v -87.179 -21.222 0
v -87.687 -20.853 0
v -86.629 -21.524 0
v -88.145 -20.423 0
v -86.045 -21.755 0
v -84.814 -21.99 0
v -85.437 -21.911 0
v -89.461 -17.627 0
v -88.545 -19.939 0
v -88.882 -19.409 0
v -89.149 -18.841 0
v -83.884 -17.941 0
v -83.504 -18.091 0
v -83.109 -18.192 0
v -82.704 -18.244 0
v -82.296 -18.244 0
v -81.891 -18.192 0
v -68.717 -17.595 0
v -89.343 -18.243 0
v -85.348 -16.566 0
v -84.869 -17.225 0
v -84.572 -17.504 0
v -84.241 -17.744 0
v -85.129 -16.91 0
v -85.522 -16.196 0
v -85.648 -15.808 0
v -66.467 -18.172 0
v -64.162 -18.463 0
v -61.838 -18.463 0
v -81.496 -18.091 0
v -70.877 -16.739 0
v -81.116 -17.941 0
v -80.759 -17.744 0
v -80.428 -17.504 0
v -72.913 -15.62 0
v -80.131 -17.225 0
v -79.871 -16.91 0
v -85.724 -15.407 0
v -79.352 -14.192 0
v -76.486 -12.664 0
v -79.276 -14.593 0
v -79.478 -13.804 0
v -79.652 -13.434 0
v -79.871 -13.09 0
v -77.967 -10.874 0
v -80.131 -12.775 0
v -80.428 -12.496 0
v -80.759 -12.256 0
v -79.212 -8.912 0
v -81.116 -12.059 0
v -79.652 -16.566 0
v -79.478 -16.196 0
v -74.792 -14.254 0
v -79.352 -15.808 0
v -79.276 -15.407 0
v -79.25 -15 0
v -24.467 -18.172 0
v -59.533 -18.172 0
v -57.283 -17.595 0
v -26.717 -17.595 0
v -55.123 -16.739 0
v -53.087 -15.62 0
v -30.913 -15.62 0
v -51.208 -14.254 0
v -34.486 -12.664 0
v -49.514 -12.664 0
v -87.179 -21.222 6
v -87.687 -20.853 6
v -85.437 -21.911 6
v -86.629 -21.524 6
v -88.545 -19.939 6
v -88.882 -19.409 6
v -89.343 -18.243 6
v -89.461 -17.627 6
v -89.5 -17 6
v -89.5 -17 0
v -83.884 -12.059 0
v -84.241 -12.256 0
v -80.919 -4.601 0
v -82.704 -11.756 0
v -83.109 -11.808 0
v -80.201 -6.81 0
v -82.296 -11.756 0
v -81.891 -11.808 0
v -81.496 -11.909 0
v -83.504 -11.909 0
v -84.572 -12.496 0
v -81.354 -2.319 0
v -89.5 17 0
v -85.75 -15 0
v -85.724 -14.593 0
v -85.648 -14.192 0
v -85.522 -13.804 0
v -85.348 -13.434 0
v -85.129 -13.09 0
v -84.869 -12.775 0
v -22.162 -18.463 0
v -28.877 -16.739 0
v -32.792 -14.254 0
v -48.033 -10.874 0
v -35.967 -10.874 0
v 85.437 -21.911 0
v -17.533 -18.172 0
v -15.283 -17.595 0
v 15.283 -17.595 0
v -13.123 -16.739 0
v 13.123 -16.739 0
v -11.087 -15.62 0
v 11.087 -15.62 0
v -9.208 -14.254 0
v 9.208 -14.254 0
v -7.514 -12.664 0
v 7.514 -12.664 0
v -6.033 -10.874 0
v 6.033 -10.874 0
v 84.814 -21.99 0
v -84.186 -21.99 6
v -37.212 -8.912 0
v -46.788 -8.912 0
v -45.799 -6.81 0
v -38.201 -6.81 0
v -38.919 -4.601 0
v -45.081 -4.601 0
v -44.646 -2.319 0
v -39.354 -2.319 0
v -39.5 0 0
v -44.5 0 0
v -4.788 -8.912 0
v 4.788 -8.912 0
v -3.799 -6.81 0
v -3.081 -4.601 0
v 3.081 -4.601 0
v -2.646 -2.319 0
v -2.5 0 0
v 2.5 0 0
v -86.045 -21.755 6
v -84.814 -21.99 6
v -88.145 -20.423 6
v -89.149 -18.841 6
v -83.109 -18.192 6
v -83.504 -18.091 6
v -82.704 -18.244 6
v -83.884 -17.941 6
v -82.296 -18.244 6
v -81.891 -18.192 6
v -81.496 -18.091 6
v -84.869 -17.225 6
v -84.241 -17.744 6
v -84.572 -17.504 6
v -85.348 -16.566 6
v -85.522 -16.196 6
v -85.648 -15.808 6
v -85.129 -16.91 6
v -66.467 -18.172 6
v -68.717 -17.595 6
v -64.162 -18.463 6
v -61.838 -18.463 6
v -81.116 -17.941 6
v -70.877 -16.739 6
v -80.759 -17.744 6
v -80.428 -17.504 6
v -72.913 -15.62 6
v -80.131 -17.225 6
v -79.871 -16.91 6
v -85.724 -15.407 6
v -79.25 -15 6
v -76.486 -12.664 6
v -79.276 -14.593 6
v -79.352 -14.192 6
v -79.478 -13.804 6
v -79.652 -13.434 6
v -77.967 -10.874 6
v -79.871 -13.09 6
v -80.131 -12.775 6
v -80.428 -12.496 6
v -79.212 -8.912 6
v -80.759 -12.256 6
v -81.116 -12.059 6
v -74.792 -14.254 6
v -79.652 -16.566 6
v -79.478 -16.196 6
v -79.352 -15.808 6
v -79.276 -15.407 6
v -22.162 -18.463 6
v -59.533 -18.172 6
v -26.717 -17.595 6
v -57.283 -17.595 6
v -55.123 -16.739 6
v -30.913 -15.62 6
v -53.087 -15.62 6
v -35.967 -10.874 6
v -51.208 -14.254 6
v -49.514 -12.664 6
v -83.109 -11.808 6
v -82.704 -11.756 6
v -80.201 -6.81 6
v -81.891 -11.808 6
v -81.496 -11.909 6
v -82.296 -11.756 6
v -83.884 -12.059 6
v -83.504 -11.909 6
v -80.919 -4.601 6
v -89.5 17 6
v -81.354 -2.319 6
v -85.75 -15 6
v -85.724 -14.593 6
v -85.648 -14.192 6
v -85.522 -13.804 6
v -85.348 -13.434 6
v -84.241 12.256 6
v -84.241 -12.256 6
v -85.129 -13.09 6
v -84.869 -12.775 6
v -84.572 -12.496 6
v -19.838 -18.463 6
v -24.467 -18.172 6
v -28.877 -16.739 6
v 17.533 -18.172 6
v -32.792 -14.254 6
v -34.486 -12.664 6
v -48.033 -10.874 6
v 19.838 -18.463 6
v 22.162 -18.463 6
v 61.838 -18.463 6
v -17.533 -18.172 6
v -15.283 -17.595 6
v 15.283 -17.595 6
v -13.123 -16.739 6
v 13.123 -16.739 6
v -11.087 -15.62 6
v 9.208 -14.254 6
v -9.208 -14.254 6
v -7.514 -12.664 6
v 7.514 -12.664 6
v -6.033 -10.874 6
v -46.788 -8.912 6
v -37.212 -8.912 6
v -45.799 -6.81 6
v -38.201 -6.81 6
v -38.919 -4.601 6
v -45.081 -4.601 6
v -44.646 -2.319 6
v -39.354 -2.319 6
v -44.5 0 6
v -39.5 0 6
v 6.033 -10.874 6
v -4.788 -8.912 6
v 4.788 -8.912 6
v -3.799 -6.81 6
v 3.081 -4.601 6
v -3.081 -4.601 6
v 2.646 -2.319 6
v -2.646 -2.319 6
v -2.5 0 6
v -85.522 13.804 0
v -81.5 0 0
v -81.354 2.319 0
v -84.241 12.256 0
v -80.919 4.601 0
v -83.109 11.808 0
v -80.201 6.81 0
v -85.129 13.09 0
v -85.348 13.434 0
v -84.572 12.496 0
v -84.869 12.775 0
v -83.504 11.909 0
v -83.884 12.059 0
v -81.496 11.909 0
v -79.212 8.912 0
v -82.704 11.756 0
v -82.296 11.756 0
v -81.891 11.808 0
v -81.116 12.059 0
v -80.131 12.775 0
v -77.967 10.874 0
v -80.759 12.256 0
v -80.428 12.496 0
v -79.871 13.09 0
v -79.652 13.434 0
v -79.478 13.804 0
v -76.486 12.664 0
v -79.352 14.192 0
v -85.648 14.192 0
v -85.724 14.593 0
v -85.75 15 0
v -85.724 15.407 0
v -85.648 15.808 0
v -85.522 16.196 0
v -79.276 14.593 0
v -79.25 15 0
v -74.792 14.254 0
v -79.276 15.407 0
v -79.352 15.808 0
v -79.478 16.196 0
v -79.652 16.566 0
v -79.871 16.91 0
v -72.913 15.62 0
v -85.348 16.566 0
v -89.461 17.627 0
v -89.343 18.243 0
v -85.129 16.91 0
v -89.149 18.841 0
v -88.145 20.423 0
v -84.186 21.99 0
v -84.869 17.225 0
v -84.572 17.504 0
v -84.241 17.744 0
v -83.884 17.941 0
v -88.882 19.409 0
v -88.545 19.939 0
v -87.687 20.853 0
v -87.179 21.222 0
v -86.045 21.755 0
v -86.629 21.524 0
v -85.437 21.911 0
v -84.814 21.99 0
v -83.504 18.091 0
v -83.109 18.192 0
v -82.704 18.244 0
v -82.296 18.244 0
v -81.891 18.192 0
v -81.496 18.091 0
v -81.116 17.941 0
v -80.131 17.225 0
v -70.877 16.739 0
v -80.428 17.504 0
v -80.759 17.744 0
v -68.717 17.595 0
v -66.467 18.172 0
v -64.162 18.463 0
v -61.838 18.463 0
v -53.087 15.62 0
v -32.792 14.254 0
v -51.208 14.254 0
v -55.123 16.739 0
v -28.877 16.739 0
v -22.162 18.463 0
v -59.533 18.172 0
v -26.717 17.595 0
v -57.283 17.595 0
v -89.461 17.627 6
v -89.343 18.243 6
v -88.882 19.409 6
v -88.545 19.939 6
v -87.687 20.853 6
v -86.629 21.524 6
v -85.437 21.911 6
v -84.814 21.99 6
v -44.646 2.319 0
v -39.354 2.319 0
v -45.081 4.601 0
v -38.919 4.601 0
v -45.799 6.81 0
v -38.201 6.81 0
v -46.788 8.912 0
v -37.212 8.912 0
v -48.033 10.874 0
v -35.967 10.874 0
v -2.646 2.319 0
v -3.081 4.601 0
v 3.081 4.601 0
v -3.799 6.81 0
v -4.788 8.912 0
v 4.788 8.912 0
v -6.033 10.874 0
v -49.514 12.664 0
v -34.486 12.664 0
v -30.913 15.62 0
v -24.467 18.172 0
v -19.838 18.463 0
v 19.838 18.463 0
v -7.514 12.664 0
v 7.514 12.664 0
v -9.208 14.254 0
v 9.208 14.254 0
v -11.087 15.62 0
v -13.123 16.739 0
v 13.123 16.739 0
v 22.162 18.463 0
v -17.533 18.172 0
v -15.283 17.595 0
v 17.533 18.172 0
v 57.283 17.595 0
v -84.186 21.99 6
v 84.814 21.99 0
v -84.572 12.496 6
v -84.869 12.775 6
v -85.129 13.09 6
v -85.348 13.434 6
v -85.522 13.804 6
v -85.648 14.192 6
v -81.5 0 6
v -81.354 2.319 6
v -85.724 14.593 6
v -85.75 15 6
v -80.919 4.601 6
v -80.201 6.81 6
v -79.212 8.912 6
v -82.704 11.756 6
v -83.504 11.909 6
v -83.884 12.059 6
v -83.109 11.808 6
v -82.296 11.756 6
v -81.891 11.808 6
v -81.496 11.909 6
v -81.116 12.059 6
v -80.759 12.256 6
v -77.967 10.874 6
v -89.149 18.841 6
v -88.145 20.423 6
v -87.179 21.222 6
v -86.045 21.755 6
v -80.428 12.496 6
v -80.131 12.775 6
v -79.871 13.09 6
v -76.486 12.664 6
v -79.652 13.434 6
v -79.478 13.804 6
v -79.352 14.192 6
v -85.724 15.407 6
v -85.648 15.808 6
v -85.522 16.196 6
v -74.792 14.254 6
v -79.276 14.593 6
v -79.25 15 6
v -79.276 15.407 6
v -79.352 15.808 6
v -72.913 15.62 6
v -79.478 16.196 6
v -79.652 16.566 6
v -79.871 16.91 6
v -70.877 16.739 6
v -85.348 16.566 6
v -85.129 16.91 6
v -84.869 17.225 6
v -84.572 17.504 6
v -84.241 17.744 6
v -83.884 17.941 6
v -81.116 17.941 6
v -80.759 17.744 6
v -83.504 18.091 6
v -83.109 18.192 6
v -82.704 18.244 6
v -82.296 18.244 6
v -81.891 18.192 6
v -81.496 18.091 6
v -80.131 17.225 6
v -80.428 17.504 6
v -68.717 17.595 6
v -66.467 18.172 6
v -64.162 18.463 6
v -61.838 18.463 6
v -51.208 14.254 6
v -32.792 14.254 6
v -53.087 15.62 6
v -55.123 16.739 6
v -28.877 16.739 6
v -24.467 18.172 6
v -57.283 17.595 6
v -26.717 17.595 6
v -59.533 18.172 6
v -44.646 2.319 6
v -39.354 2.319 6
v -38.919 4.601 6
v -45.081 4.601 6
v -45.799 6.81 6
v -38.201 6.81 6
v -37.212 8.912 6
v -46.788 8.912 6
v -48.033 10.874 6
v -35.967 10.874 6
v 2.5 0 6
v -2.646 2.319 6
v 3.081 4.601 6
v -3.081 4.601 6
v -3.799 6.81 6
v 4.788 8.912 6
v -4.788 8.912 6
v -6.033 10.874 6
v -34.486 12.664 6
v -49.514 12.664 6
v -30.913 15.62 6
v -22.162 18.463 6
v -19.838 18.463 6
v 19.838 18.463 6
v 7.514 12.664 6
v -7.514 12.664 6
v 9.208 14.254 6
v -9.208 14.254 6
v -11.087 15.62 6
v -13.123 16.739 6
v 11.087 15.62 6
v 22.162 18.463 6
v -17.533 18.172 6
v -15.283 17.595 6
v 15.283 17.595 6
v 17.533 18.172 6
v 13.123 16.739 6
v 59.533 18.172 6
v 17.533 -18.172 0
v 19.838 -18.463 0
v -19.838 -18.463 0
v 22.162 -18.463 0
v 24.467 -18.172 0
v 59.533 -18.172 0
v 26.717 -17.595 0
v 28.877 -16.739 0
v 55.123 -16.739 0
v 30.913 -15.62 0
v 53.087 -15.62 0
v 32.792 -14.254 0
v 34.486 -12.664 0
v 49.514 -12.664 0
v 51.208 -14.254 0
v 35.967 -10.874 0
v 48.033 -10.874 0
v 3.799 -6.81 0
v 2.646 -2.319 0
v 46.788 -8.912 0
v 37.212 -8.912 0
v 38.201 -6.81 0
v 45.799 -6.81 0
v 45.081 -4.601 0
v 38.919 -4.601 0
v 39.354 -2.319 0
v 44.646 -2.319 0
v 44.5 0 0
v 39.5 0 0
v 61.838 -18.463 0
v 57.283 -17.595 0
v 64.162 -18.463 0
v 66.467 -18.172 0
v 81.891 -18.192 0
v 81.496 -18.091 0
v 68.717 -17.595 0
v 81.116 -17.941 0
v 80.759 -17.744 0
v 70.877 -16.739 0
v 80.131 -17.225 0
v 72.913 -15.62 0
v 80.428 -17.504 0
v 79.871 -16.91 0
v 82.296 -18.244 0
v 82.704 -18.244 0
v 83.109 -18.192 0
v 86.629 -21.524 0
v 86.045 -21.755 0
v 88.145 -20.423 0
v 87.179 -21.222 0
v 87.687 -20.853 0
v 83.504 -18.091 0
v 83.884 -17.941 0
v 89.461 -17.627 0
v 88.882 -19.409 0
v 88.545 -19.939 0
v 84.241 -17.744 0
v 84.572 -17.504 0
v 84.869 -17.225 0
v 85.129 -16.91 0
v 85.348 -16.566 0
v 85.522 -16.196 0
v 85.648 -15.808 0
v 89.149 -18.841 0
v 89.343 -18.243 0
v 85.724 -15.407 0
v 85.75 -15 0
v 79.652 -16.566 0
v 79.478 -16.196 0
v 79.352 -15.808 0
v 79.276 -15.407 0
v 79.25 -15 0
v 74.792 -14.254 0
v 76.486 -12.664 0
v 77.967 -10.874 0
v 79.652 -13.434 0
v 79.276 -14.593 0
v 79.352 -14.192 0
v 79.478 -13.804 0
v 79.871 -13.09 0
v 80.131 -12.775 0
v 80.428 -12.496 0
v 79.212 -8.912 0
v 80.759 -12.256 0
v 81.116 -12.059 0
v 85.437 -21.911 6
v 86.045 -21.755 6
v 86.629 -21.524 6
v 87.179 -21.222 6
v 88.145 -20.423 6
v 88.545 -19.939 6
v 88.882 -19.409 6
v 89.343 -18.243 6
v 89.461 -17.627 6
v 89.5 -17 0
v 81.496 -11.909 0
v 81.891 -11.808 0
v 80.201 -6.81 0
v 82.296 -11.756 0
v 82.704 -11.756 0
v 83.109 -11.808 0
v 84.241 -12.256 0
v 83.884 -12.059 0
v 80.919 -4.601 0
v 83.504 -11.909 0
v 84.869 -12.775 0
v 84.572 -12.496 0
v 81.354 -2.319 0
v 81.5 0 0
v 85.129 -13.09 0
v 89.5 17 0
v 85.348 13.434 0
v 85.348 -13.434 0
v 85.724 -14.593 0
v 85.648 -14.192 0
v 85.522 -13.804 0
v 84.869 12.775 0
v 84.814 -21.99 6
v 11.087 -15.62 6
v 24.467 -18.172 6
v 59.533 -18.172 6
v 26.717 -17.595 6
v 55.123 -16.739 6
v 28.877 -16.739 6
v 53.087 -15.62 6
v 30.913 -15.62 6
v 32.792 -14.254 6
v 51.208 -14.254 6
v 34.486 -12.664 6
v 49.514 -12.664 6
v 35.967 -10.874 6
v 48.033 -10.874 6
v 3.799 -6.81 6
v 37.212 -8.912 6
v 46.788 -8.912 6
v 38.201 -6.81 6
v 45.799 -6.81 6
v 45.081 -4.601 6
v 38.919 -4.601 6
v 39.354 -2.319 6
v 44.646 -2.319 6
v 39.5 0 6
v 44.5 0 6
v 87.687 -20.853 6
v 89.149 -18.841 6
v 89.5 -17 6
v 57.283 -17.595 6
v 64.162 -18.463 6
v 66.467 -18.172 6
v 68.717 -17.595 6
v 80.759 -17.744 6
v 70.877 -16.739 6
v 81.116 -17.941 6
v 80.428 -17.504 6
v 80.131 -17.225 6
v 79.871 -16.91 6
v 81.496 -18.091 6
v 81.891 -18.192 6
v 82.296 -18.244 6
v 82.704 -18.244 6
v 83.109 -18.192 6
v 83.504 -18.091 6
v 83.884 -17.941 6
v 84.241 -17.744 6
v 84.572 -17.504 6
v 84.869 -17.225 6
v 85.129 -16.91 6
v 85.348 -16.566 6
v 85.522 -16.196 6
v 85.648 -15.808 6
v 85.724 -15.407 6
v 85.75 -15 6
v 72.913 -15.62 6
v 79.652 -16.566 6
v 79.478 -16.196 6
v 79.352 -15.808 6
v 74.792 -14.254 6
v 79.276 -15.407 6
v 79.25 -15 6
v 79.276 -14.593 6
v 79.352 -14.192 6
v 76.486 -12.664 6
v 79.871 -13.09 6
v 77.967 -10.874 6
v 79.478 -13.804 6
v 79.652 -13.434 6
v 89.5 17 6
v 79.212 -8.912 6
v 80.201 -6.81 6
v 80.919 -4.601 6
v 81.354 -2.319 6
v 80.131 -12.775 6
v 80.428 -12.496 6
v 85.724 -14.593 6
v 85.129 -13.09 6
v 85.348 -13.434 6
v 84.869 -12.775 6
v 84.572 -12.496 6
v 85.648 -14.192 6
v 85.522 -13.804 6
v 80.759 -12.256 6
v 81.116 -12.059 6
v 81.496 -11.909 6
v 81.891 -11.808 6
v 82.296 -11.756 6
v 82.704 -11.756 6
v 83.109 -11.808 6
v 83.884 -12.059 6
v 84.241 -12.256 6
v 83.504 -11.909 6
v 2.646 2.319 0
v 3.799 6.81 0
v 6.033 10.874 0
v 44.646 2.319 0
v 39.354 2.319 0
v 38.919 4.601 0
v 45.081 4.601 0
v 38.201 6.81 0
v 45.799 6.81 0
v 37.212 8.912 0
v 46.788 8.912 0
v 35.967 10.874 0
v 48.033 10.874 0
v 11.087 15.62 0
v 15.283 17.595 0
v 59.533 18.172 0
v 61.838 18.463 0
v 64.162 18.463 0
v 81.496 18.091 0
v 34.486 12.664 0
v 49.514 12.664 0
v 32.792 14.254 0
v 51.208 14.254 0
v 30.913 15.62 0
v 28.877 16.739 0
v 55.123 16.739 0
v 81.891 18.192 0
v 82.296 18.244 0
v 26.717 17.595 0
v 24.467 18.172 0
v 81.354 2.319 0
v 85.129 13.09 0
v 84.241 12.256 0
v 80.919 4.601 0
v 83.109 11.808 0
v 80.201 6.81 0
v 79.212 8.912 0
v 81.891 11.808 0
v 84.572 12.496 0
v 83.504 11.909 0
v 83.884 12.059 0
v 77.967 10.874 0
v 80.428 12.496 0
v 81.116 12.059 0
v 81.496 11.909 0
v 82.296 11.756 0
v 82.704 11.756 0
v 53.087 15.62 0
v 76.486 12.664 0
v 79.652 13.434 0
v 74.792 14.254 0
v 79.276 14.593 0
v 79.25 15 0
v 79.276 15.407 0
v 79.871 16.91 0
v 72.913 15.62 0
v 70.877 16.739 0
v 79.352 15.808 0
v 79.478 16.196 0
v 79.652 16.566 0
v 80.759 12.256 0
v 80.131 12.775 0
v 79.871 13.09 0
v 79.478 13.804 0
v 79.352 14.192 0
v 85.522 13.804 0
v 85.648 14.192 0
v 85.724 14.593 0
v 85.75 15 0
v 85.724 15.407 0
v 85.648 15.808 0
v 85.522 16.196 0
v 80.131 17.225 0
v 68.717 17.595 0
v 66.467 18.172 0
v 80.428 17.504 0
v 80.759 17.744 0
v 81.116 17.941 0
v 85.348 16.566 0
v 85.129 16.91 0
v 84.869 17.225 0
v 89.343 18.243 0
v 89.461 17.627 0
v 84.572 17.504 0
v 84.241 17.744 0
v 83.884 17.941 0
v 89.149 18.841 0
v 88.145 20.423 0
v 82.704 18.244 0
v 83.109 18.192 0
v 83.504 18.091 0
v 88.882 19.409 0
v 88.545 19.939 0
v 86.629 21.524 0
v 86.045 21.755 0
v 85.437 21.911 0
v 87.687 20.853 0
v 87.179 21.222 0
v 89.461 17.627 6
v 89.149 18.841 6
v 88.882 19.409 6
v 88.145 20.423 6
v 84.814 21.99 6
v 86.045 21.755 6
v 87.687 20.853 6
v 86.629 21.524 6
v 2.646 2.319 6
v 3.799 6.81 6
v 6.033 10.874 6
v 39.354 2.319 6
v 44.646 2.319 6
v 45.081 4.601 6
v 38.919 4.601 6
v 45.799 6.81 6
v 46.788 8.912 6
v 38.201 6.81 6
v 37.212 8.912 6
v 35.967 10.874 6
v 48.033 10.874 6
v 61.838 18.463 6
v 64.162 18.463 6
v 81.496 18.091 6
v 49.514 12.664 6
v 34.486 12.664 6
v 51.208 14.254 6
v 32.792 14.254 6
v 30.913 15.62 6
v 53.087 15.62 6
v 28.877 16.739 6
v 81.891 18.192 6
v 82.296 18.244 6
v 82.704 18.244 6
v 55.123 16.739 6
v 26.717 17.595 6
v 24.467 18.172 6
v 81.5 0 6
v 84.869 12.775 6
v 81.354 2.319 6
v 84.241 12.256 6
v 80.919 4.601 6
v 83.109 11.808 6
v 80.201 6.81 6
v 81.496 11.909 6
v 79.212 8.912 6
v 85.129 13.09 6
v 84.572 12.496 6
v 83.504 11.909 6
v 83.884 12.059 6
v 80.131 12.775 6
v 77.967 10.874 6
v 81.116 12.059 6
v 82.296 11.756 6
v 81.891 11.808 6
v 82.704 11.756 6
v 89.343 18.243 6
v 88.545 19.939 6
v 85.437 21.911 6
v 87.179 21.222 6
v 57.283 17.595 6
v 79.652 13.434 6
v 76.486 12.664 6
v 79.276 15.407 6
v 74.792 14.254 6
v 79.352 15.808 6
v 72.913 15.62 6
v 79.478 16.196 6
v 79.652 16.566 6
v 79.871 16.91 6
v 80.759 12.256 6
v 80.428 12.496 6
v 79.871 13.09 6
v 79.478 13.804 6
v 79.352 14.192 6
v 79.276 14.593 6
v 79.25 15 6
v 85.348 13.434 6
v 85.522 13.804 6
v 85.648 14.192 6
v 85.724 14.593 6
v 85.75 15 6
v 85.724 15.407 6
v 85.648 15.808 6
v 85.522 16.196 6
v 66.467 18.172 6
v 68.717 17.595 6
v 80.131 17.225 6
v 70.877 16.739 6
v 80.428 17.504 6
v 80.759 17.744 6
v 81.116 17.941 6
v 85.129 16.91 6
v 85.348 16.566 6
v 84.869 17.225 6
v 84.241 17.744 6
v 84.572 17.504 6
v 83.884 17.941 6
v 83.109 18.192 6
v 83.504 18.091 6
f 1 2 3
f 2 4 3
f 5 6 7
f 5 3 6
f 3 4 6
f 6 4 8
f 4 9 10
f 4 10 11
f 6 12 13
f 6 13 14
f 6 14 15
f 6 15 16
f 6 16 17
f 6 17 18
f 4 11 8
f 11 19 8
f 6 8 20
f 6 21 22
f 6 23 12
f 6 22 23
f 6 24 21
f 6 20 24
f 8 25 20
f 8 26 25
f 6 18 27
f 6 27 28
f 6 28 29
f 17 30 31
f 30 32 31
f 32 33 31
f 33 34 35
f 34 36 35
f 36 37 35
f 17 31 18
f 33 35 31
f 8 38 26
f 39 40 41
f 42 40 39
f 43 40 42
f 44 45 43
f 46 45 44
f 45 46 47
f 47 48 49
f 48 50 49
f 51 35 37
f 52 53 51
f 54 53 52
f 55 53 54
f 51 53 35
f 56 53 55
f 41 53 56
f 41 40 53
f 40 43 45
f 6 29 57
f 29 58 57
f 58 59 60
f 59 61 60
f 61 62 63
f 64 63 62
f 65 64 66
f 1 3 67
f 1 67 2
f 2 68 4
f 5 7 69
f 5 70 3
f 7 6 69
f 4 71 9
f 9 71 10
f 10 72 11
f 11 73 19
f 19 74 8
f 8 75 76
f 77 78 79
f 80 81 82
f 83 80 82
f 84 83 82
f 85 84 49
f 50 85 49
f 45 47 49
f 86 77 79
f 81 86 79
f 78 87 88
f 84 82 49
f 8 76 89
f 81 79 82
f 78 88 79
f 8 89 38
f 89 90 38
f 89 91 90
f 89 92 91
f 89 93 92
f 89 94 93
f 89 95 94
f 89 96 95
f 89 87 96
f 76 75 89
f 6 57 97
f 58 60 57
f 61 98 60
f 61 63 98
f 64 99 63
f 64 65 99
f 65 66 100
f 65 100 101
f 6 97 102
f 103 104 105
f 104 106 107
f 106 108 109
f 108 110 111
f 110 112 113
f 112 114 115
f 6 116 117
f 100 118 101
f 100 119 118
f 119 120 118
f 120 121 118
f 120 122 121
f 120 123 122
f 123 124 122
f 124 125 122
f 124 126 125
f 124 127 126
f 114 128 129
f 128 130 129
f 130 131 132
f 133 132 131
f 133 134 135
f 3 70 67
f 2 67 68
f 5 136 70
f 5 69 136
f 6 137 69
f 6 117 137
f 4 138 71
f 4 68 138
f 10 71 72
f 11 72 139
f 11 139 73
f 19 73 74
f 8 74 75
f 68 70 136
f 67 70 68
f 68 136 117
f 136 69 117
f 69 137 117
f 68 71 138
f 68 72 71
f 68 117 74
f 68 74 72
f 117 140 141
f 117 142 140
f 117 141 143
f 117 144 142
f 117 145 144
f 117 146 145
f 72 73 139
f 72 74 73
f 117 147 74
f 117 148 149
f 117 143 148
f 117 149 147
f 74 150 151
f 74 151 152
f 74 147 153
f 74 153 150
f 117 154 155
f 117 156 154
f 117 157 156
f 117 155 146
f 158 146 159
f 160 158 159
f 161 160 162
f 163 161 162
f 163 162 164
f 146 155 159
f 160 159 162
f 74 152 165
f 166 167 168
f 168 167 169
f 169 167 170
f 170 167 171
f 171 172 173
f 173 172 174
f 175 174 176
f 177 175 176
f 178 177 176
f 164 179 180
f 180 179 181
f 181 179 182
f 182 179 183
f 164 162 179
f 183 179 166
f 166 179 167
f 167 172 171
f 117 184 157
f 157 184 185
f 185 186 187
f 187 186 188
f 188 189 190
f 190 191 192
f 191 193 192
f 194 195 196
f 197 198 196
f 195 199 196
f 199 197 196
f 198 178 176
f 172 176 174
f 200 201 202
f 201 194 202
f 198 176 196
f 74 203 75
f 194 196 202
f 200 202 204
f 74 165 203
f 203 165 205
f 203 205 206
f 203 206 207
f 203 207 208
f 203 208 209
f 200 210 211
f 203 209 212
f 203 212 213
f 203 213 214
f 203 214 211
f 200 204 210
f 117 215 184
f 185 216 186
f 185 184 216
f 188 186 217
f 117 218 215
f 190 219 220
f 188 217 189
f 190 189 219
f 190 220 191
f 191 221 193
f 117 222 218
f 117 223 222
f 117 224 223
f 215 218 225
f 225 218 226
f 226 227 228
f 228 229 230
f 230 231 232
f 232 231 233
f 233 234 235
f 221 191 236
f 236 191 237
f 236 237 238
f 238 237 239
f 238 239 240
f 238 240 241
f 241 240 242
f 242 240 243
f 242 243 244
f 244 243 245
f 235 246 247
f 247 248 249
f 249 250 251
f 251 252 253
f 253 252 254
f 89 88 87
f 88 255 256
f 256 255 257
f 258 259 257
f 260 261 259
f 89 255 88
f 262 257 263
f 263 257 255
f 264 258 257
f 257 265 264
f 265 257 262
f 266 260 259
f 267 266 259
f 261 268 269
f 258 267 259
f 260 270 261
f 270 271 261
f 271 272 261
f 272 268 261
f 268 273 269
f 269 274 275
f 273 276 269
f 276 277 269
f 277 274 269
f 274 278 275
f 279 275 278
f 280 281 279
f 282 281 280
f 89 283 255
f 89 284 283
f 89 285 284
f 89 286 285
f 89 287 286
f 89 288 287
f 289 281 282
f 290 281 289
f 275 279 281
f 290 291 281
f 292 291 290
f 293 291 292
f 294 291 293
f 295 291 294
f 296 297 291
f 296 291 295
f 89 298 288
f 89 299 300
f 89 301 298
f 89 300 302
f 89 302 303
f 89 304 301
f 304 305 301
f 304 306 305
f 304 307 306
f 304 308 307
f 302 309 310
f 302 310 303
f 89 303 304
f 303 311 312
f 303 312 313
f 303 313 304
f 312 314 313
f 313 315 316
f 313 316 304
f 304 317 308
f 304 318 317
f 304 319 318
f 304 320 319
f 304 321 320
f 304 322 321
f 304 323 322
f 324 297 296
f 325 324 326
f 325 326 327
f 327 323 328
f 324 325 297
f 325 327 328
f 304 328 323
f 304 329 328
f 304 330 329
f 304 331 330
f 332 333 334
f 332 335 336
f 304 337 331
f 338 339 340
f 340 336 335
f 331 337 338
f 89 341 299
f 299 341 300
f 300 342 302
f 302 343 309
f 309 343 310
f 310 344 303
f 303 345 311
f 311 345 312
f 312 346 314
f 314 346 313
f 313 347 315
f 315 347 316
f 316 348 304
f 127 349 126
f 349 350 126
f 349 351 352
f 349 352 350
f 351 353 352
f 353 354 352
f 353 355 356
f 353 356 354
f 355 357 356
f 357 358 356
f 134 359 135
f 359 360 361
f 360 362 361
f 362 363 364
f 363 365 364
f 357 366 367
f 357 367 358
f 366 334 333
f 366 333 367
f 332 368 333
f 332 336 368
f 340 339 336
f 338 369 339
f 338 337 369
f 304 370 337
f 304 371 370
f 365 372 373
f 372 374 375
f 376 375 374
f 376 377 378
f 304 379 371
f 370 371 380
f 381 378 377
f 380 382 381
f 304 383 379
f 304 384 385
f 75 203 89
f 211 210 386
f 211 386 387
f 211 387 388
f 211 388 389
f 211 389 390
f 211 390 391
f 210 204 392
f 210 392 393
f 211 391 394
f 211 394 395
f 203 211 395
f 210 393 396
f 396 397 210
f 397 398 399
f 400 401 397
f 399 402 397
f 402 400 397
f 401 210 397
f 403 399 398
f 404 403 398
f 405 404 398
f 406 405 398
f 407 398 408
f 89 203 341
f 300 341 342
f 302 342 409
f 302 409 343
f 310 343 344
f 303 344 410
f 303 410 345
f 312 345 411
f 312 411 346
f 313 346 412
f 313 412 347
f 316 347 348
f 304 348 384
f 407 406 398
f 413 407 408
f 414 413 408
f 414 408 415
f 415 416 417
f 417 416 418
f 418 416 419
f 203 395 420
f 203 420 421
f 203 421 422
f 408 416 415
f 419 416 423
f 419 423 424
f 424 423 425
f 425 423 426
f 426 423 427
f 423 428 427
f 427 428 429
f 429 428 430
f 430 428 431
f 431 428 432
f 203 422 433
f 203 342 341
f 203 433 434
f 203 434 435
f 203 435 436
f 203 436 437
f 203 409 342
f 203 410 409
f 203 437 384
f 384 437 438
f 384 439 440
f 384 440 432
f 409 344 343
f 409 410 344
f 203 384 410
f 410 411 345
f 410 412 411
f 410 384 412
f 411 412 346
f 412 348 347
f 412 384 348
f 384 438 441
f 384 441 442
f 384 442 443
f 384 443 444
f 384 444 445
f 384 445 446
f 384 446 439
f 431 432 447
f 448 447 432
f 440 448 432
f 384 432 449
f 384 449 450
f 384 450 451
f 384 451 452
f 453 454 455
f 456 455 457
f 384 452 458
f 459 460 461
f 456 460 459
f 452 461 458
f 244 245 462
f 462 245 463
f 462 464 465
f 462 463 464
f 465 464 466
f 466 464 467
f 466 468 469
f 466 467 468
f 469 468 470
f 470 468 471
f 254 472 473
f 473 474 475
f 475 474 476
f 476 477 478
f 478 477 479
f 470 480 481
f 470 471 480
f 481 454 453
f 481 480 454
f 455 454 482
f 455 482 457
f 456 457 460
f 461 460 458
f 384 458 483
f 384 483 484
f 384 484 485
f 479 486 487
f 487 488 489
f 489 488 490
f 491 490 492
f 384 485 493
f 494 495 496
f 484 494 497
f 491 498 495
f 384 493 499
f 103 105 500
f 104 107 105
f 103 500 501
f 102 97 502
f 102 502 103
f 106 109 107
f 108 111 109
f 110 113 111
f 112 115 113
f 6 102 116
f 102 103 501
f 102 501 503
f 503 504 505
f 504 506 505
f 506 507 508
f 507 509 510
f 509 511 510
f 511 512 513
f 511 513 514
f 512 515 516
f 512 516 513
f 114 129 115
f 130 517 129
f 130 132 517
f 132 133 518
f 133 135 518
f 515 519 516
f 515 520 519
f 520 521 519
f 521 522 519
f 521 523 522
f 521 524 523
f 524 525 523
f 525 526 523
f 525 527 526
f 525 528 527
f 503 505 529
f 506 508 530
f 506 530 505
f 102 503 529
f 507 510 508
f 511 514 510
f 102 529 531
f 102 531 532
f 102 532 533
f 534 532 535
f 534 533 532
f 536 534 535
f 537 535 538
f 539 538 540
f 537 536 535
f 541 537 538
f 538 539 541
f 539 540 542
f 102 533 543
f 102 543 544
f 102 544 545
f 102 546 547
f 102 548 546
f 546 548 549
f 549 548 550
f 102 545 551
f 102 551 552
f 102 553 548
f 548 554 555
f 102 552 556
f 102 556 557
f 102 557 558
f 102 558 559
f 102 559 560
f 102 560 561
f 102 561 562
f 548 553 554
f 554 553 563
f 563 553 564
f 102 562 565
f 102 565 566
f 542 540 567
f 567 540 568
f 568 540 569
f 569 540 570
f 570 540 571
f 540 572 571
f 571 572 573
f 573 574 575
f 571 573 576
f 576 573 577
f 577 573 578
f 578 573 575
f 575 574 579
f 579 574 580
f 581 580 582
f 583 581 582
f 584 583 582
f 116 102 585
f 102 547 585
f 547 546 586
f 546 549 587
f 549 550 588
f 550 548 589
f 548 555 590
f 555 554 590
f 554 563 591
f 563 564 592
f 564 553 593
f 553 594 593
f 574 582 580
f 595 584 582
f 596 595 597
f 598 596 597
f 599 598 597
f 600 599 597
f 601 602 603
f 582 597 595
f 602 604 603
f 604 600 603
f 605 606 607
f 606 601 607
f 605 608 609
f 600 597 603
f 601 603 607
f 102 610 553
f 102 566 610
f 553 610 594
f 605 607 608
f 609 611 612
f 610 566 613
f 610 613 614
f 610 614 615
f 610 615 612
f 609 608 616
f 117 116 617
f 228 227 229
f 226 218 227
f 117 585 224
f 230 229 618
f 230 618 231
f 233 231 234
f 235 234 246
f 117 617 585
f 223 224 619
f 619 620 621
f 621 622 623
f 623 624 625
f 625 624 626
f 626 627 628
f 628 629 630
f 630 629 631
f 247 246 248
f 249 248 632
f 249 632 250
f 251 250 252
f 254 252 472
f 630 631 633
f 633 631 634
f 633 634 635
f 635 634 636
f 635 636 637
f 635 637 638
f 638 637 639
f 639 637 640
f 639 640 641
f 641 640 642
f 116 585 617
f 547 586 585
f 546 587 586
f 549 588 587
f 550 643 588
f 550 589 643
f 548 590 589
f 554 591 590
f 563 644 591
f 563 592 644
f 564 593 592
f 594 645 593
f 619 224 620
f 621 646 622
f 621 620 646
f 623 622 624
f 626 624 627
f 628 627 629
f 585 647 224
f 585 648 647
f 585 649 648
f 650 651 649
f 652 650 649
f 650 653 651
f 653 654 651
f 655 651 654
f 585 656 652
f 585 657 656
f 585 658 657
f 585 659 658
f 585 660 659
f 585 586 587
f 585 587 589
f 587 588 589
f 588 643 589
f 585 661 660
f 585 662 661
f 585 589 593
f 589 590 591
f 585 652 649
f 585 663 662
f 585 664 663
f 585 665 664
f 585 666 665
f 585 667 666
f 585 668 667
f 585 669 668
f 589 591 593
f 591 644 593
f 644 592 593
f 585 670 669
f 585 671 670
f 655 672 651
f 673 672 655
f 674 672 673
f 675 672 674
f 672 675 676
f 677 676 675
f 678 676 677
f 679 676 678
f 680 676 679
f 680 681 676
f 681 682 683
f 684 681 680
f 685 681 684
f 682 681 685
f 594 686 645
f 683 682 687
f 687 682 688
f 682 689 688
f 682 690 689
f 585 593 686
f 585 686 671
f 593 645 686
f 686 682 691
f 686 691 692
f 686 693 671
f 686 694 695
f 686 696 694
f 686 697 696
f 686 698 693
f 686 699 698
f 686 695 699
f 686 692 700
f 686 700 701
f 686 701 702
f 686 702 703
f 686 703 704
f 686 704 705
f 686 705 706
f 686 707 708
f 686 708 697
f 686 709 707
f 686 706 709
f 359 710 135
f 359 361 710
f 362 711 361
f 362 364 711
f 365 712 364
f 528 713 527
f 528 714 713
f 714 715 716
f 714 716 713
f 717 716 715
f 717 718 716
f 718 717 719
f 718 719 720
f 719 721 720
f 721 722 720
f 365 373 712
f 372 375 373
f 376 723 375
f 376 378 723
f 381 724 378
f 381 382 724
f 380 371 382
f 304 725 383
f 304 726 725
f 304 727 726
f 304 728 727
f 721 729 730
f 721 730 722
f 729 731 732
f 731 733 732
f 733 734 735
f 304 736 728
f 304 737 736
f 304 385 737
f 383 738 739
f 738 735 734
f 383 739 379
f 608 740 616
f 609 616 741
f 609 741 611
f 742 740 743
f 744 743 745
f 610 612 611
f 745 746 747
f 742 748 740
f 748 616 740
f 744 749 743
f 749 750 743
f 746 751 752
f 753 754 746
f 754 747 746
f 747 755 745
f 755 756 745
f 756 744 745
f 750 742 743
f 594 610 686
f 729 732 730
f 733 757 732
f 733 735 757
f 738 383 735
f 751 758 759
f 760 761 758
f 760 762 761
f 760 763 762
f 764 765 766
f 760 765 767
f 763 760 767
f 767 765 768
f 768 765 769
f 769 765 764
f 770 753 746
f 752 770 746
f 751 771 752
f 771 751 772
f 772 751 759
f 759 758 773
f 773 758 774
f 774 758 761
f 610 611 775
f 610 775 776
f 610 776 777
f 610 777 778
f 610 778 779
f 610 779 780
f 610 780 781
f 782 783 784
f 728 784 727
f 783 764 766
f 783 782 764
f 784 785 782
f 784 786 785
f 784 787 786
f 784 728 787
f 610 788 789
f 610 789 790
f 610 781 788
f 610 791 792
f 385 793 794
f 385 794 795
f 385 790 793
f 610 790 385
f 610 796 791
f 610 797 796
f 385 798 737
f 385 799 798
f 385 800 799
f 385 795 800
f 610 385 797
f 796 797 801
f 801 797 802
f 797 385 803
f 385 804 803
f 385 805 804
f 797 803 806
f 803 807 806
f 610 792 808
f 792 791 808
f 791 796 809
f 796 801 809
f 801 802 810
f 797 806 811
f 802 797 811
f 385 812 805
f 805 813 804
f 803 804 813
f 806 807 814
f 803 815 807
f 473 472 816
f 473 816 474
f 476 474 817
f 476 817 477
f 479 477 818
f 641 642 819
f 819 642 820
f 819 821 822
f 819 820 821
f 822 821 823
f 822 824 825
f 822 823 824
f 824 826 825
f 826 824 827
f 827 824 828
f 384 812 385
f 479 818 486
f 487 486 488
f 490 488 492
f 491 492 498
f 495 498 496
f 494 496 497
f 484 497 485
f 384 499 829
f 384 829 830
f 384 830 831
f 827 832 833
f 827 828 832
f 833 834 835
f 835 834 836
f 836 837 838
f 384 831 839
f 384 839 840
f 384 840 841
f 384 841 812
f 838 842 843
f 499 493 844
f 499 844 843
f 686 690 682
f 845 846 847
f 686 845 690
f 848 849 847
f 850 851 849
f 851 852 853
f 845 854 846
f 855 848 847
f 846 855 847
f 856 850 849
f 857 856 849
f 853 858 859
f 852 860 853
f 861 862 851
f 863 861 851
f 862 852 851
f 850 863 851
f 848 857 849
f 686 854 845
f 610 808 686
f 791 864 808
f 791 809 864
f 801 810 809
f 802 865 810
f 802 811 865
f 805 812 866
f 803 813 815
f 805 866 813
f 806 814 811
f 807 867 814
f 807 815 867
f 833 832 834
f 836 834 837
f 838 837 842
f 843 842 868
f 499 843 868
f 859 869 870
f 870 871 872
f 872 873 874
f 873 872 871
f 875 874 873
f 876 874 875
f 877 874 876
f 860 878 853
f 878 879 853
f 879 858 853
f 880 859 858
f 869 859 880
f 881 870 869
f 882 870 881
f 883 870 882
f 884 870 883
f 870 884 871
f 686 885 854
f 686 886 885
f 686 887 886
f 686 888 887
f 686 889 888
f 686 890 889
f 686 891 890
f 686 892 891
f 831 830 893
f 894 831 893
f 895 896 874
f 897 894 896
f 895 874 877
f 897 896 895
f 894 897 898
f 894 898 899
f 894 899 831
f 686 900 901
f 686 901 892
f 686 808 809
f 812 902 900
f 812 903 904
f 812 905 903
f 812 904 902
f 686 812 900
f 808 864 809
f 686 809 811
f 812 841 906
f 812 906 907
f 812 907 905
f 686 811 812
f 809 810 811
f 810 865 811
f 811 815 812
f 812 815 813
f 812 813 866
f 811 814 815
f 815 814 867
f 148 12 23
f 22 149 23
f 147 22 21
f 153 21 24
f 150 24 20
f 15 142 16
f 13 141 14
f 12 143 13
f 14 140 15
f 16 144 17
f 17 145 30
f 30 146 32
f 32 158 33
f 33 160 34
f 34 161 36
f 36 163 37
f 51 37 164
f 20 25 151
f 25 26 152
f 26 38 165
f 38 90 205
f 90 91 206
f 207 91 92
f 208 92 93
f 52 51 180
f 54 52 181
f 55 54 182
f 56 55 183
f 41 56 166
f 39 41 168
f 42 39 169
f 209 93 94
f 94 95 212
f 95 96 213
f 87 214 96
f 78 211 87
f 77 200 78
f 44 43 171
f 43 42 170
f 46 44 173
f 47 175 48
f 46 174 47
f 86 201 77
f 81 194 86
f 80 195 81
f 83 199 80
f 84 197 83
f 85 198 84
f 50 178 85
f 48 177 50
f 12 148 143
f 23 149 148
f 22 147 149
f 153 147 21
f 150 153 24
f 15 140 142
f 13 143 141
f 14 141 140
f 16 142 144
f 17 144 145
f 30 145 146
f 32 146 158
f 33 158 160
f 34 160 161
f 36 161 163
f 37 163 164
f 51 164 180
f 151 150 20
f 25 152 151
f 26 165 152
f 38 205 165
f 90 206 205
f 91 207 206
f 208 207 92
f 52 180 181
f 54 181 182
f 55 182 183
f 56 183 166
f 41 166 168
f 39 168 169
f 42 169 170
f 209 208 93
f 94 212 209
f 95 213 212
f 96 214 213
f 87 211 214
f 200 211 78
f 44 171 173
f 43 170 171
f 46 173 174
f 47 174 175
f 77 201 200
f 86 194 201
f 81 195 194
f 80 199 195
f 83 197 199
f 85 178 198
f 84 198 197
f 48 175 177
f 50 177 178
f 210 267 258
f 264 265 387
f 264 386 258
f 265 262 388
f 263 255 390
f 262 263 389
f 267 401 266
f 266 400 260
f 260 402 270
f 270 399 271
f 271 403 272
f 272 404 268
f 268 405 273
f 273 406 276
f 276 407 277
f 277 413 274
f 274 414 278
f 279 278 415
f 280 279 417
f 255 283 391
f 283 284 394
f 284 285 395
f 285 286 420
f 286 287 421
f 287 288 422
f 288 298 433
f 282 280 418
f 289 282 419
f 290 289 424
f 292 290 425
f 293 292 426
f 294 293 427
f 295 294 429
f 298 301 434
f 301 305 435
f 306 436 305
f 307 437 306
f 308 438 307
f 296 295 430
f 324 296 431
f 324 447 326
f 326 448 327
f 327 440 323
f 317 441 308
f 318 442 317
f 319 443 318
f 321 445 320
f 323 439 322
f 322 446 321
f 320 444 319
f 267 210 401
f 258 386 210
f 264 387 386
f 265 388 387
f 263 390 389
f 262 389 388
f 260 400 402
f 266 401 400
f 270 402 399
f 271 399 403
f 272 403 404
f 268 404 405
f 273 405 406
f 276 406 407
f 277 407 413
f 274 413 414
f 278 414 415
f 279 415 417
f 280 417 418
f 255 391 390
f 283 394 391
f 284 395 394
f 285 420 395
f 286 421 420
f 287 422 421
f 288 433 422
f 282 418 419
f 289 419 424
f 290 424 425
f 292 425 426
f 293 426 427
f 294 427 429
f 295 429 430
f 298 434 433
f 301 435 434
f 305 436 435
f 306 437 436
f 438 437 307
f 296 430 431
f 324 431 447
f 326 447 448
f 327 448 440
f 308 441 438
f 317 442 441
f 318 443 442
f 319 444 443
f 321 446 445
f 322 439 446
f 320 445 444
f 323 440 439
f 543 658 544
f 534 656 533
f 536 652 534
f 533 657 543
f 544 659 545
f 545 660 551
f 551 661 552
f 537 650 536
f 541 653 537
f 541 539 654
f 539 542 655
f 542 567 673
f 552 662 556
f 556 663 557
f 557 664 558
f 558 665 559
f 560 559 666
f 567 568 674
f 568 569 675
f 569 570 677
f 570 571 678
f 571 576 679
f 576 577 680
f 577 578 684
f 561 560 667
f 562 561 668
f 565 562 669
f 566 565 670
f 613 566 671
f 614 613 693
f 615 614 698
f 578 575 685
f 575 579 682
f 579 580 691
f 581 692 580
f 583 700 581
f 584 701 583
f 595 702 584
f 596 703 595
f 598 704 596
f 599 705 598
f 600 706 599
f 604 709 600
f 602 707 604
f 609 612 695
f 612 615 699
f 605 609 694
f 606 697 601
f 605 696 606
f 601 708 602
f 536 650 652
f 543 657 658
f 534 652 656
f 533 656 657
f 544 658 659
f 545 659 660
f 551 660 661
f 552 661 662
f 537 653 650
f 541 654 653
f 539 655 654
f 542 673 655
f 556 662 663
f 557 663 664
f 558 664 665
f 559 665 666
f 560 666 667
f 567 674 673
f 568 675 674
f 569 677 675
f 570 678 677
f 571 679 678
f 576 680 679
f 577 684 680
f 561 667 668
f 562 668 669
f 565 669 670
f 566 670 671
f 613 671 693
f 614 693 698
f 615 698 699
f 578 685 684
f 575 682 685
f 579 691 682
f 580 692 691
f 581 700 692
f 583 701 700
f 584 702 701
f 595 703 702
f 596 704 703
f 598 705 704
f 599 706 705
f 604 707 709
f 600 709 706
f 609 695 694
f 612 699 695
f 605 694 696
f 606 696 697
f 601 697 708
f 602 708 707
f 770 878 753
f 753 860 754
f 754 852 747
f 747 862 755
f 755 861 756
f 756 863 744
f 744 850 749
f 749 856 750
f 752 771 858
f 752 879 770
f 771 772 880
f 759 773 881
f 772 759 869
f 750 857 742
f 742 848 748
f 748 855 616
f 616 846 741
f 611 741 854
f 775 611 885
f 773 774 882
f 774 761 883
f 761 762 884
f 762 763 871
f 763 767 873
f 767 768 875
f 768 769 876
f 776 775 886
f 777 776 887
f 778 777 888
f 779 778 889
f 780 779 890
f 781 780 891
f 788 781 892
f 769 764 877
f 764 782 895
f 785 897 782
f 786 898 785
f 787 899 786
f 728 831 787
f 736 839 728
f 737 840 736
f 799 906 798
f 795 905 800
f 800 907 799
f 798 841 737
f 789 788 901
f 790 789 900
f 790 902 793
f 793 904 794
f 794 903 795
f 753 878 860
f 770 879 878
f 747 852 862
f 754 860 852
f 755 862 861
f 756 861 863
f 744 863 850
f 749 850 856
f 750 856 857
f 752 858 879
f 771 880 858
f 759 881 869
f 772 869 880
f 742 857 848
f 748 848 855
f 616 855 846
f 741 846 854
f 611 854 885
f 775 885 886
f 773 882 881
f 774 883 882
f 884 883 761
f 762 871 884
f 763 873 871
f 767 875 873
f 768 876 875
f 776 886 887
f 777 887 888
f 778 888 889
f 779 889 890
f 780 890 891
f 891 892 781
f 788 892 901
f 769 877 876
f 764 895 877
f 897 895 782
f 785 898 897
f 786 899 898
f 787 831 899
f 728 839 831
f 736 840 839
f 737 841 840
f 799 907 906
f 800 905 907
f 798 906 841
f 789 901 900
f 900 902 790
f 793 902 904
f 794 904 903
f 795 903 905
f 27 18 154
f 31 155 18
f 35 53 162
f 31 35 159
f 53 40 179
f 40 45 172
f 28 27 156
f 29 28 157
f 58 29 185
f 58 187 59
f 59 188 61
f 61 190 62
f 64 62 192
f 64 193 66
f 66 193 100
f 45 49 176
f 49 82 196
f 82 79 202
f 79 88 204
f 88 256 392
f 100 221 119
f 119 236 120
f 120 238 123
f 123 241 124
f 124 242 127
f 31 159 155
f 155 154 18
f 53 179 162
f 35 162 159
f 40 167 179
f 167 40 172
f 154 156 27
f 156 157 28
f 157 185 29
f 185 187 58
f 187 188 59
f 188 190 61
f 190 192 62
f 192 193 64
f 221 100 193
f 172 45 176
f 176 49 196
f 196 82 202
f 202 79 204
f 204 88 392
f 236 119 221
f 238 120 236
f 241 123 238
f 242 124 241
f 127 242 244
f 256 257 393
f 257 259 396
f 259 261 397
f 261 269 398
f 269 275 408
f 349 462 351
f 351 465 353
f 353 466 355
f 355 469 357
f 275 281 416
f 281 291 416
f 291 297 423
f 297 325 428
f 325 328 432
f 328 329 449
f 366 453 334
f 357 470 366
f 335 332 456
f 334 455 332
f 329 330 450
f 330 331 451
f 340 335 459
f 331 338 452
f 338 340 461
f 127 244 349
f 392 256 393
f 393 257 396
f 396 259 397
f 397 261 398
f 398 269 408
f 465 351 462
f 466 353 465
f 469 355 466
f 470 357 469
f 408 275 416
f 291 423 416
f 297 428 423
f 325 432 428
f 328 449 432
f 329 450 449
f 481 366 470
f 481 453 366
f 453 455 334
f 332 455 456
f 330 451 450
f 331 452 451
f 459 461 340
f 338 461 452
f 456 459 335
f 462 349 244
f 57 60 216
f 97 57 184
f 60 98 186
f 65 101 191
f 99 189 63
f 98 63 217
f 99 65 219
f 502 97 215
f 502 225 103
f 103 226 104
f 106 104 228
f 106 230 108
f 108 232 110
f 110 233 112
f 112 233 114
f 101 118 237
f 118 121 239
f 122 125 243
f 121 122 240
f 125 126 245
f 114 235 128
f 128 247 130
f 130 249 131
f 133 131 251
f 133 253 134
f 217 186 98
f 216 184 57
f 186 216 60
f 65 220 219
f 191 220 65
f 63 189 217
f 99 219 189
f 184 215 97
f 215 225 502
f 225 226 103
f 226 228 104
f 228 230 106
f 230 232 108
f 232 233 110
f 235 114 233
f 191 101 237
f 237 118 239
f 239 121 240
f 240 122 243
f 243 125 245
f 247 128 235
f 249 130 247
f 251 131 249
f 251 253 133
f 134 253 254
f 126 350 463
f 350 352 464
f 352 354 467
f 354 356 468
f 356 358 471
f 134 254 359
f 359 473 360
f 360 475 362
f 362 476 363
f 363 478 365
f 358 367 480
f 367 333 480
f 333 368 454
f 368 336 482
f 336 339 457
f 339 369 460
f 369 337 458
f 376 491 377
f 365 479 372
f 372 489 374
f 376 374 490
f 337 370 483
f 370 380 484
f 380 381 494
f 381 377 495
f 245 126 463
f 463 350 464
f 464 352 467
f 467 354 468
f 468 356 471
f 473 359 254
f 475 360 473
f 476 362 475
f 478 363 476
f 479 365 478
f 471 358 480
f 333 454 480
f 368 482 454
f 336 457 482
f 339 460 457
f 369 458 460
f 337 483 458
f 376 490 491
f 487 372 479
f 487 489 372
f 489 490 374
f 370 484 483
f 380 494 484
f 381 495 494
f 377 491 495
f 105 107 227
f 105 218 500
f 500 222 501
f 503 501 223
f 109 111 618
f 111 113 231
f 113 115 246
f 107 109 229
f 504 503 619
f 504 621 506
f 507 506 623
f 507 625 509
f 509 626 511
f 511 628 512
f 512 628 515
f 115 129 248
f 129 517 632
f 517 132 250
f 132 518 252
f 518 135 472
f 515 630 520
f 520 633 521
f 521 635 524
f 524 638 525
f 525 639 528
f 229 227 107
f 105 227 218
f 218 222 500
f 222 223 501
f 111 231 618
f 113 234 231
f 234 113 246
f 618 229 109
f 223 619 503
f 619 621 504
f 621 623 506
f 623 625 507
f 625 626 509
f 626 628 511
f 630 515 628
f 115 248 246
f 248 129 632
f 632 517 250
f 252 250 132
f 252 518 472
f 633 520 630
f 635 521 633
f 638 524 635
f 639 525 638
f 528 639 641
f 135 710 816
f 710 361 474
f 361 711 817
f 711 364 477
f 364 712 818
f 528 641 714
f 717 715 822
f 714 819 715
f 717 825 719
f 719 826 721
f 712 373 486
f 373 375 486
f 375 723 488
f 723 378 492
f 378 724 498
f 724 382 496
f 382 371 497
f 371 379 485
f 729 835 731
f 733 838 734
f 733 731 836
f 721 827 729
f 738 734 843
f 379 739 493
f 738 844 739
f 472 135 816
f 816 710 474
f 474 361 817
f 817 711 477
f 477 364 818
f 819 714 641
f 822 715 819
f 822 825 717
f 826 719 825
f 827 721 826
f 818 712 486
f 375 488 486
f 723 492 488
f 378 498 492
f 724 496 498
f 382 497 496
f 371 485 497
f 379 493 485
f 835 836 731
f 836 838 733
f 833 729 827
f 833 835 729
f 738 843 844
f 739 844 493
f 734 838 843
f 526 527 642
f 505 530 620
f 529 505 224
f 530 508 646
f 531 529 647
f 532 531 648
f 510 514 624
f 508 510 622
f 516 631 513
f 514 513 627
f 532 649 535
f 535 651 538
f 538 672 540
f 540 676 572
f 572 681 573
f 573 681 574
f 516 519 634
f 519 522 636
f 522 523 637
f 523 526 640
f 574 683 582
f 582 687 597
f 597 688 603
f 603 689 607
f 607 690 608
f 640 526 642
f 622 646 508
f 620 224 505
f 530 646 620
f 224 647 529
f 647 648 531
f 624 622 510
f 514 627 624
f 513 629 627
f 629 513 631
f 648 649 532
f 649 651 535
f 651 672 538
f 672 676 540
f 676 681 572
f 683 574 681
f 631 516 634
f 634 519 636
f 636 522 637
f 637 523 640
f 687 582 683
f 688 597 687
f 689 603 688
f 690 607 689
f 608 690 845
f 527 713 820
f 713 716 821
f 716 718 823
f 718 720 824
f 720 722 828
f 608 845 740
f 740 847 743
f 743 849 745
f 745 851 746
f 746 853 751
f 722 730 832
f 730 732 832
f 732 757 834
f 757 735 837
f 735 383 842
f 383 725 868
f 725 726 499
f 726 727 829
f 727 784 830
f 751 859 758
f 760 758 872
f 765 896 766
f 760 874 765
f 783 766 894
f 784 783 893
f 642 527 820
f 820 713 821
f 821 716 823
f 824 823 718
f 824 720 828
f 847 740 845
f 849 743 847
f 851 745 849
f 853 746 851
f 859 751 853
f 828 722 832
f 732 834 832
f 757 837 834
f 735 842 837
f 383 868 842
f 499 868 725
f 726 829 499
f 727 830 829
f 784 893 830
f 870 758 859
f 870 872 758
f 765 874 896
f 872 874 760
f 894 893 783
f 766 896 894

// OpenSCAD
$fn = 50;

difference() {
	union() {
		hull() {
			translate(v = [-84.5, 17.0, 0]) {
				cylinder(h = 6, r = 5);
			}
			translate(v = [84.5, 17.0, 0]) {
				cylinder(h = 6, r = 5);
			}
			translate(v = [-84.5, -17.0, 0]) {
				cylinder(h = 6, r = 5);
			}
			translate(v = [84.5, -17.0, 0]) {
				cylinder(h = 6, r = 5);
			}
		}
	}
	union() {
		translate(v = [-82.5, -15.0, -100.0]) {
			cylinder(h = 200, r = 3.25);
		}
		translate(v = [-82.5, 15.0, -100.0]) {
			cylinder(h = 200, r = 3.25);
		}
		translate(v = [82.5, -15.0, -100.0]) {
			cylinder(h = 200, r = 3.25);
		}
		translate(v = [82.5, 15.0, -100.0]) {
			cylinder(h = 200, r = 3.25);
		}
		translate(v = [-82.5, -15.0, -100.0]) {
			cylinder(h = 200, r = 1.8);
		}
		translate(v = [-82.5, 15.0, -100.0]) {
			cylinder(h = 200, r = 1.8);
		}
		translate(v = [82.5, -15.0, -100.0]) {
			cylinder(h = 200, r = 1.8);
		}
		translate(v = [82.5, 15.0, -100.0]) {
			cylinder(h = 200, r = 1.8);
		}
		translate(v = [-63.0, 0, 0.0]) {
			cylinder(h = 6, r = 18.5);
		}
		translate(v = [-21.0, 0, 0.0]) {
			cylinder(h = 6, r = 18.5);
		}
		translate(v = [21.0, 0, 0.0]) {
			cylinder(h = 6, r = 18.5);
		}
		translate(v = [63.0, 0, 0.0]) {
			cylinder(h = 6, r = 18.5);
		}
	}
}
